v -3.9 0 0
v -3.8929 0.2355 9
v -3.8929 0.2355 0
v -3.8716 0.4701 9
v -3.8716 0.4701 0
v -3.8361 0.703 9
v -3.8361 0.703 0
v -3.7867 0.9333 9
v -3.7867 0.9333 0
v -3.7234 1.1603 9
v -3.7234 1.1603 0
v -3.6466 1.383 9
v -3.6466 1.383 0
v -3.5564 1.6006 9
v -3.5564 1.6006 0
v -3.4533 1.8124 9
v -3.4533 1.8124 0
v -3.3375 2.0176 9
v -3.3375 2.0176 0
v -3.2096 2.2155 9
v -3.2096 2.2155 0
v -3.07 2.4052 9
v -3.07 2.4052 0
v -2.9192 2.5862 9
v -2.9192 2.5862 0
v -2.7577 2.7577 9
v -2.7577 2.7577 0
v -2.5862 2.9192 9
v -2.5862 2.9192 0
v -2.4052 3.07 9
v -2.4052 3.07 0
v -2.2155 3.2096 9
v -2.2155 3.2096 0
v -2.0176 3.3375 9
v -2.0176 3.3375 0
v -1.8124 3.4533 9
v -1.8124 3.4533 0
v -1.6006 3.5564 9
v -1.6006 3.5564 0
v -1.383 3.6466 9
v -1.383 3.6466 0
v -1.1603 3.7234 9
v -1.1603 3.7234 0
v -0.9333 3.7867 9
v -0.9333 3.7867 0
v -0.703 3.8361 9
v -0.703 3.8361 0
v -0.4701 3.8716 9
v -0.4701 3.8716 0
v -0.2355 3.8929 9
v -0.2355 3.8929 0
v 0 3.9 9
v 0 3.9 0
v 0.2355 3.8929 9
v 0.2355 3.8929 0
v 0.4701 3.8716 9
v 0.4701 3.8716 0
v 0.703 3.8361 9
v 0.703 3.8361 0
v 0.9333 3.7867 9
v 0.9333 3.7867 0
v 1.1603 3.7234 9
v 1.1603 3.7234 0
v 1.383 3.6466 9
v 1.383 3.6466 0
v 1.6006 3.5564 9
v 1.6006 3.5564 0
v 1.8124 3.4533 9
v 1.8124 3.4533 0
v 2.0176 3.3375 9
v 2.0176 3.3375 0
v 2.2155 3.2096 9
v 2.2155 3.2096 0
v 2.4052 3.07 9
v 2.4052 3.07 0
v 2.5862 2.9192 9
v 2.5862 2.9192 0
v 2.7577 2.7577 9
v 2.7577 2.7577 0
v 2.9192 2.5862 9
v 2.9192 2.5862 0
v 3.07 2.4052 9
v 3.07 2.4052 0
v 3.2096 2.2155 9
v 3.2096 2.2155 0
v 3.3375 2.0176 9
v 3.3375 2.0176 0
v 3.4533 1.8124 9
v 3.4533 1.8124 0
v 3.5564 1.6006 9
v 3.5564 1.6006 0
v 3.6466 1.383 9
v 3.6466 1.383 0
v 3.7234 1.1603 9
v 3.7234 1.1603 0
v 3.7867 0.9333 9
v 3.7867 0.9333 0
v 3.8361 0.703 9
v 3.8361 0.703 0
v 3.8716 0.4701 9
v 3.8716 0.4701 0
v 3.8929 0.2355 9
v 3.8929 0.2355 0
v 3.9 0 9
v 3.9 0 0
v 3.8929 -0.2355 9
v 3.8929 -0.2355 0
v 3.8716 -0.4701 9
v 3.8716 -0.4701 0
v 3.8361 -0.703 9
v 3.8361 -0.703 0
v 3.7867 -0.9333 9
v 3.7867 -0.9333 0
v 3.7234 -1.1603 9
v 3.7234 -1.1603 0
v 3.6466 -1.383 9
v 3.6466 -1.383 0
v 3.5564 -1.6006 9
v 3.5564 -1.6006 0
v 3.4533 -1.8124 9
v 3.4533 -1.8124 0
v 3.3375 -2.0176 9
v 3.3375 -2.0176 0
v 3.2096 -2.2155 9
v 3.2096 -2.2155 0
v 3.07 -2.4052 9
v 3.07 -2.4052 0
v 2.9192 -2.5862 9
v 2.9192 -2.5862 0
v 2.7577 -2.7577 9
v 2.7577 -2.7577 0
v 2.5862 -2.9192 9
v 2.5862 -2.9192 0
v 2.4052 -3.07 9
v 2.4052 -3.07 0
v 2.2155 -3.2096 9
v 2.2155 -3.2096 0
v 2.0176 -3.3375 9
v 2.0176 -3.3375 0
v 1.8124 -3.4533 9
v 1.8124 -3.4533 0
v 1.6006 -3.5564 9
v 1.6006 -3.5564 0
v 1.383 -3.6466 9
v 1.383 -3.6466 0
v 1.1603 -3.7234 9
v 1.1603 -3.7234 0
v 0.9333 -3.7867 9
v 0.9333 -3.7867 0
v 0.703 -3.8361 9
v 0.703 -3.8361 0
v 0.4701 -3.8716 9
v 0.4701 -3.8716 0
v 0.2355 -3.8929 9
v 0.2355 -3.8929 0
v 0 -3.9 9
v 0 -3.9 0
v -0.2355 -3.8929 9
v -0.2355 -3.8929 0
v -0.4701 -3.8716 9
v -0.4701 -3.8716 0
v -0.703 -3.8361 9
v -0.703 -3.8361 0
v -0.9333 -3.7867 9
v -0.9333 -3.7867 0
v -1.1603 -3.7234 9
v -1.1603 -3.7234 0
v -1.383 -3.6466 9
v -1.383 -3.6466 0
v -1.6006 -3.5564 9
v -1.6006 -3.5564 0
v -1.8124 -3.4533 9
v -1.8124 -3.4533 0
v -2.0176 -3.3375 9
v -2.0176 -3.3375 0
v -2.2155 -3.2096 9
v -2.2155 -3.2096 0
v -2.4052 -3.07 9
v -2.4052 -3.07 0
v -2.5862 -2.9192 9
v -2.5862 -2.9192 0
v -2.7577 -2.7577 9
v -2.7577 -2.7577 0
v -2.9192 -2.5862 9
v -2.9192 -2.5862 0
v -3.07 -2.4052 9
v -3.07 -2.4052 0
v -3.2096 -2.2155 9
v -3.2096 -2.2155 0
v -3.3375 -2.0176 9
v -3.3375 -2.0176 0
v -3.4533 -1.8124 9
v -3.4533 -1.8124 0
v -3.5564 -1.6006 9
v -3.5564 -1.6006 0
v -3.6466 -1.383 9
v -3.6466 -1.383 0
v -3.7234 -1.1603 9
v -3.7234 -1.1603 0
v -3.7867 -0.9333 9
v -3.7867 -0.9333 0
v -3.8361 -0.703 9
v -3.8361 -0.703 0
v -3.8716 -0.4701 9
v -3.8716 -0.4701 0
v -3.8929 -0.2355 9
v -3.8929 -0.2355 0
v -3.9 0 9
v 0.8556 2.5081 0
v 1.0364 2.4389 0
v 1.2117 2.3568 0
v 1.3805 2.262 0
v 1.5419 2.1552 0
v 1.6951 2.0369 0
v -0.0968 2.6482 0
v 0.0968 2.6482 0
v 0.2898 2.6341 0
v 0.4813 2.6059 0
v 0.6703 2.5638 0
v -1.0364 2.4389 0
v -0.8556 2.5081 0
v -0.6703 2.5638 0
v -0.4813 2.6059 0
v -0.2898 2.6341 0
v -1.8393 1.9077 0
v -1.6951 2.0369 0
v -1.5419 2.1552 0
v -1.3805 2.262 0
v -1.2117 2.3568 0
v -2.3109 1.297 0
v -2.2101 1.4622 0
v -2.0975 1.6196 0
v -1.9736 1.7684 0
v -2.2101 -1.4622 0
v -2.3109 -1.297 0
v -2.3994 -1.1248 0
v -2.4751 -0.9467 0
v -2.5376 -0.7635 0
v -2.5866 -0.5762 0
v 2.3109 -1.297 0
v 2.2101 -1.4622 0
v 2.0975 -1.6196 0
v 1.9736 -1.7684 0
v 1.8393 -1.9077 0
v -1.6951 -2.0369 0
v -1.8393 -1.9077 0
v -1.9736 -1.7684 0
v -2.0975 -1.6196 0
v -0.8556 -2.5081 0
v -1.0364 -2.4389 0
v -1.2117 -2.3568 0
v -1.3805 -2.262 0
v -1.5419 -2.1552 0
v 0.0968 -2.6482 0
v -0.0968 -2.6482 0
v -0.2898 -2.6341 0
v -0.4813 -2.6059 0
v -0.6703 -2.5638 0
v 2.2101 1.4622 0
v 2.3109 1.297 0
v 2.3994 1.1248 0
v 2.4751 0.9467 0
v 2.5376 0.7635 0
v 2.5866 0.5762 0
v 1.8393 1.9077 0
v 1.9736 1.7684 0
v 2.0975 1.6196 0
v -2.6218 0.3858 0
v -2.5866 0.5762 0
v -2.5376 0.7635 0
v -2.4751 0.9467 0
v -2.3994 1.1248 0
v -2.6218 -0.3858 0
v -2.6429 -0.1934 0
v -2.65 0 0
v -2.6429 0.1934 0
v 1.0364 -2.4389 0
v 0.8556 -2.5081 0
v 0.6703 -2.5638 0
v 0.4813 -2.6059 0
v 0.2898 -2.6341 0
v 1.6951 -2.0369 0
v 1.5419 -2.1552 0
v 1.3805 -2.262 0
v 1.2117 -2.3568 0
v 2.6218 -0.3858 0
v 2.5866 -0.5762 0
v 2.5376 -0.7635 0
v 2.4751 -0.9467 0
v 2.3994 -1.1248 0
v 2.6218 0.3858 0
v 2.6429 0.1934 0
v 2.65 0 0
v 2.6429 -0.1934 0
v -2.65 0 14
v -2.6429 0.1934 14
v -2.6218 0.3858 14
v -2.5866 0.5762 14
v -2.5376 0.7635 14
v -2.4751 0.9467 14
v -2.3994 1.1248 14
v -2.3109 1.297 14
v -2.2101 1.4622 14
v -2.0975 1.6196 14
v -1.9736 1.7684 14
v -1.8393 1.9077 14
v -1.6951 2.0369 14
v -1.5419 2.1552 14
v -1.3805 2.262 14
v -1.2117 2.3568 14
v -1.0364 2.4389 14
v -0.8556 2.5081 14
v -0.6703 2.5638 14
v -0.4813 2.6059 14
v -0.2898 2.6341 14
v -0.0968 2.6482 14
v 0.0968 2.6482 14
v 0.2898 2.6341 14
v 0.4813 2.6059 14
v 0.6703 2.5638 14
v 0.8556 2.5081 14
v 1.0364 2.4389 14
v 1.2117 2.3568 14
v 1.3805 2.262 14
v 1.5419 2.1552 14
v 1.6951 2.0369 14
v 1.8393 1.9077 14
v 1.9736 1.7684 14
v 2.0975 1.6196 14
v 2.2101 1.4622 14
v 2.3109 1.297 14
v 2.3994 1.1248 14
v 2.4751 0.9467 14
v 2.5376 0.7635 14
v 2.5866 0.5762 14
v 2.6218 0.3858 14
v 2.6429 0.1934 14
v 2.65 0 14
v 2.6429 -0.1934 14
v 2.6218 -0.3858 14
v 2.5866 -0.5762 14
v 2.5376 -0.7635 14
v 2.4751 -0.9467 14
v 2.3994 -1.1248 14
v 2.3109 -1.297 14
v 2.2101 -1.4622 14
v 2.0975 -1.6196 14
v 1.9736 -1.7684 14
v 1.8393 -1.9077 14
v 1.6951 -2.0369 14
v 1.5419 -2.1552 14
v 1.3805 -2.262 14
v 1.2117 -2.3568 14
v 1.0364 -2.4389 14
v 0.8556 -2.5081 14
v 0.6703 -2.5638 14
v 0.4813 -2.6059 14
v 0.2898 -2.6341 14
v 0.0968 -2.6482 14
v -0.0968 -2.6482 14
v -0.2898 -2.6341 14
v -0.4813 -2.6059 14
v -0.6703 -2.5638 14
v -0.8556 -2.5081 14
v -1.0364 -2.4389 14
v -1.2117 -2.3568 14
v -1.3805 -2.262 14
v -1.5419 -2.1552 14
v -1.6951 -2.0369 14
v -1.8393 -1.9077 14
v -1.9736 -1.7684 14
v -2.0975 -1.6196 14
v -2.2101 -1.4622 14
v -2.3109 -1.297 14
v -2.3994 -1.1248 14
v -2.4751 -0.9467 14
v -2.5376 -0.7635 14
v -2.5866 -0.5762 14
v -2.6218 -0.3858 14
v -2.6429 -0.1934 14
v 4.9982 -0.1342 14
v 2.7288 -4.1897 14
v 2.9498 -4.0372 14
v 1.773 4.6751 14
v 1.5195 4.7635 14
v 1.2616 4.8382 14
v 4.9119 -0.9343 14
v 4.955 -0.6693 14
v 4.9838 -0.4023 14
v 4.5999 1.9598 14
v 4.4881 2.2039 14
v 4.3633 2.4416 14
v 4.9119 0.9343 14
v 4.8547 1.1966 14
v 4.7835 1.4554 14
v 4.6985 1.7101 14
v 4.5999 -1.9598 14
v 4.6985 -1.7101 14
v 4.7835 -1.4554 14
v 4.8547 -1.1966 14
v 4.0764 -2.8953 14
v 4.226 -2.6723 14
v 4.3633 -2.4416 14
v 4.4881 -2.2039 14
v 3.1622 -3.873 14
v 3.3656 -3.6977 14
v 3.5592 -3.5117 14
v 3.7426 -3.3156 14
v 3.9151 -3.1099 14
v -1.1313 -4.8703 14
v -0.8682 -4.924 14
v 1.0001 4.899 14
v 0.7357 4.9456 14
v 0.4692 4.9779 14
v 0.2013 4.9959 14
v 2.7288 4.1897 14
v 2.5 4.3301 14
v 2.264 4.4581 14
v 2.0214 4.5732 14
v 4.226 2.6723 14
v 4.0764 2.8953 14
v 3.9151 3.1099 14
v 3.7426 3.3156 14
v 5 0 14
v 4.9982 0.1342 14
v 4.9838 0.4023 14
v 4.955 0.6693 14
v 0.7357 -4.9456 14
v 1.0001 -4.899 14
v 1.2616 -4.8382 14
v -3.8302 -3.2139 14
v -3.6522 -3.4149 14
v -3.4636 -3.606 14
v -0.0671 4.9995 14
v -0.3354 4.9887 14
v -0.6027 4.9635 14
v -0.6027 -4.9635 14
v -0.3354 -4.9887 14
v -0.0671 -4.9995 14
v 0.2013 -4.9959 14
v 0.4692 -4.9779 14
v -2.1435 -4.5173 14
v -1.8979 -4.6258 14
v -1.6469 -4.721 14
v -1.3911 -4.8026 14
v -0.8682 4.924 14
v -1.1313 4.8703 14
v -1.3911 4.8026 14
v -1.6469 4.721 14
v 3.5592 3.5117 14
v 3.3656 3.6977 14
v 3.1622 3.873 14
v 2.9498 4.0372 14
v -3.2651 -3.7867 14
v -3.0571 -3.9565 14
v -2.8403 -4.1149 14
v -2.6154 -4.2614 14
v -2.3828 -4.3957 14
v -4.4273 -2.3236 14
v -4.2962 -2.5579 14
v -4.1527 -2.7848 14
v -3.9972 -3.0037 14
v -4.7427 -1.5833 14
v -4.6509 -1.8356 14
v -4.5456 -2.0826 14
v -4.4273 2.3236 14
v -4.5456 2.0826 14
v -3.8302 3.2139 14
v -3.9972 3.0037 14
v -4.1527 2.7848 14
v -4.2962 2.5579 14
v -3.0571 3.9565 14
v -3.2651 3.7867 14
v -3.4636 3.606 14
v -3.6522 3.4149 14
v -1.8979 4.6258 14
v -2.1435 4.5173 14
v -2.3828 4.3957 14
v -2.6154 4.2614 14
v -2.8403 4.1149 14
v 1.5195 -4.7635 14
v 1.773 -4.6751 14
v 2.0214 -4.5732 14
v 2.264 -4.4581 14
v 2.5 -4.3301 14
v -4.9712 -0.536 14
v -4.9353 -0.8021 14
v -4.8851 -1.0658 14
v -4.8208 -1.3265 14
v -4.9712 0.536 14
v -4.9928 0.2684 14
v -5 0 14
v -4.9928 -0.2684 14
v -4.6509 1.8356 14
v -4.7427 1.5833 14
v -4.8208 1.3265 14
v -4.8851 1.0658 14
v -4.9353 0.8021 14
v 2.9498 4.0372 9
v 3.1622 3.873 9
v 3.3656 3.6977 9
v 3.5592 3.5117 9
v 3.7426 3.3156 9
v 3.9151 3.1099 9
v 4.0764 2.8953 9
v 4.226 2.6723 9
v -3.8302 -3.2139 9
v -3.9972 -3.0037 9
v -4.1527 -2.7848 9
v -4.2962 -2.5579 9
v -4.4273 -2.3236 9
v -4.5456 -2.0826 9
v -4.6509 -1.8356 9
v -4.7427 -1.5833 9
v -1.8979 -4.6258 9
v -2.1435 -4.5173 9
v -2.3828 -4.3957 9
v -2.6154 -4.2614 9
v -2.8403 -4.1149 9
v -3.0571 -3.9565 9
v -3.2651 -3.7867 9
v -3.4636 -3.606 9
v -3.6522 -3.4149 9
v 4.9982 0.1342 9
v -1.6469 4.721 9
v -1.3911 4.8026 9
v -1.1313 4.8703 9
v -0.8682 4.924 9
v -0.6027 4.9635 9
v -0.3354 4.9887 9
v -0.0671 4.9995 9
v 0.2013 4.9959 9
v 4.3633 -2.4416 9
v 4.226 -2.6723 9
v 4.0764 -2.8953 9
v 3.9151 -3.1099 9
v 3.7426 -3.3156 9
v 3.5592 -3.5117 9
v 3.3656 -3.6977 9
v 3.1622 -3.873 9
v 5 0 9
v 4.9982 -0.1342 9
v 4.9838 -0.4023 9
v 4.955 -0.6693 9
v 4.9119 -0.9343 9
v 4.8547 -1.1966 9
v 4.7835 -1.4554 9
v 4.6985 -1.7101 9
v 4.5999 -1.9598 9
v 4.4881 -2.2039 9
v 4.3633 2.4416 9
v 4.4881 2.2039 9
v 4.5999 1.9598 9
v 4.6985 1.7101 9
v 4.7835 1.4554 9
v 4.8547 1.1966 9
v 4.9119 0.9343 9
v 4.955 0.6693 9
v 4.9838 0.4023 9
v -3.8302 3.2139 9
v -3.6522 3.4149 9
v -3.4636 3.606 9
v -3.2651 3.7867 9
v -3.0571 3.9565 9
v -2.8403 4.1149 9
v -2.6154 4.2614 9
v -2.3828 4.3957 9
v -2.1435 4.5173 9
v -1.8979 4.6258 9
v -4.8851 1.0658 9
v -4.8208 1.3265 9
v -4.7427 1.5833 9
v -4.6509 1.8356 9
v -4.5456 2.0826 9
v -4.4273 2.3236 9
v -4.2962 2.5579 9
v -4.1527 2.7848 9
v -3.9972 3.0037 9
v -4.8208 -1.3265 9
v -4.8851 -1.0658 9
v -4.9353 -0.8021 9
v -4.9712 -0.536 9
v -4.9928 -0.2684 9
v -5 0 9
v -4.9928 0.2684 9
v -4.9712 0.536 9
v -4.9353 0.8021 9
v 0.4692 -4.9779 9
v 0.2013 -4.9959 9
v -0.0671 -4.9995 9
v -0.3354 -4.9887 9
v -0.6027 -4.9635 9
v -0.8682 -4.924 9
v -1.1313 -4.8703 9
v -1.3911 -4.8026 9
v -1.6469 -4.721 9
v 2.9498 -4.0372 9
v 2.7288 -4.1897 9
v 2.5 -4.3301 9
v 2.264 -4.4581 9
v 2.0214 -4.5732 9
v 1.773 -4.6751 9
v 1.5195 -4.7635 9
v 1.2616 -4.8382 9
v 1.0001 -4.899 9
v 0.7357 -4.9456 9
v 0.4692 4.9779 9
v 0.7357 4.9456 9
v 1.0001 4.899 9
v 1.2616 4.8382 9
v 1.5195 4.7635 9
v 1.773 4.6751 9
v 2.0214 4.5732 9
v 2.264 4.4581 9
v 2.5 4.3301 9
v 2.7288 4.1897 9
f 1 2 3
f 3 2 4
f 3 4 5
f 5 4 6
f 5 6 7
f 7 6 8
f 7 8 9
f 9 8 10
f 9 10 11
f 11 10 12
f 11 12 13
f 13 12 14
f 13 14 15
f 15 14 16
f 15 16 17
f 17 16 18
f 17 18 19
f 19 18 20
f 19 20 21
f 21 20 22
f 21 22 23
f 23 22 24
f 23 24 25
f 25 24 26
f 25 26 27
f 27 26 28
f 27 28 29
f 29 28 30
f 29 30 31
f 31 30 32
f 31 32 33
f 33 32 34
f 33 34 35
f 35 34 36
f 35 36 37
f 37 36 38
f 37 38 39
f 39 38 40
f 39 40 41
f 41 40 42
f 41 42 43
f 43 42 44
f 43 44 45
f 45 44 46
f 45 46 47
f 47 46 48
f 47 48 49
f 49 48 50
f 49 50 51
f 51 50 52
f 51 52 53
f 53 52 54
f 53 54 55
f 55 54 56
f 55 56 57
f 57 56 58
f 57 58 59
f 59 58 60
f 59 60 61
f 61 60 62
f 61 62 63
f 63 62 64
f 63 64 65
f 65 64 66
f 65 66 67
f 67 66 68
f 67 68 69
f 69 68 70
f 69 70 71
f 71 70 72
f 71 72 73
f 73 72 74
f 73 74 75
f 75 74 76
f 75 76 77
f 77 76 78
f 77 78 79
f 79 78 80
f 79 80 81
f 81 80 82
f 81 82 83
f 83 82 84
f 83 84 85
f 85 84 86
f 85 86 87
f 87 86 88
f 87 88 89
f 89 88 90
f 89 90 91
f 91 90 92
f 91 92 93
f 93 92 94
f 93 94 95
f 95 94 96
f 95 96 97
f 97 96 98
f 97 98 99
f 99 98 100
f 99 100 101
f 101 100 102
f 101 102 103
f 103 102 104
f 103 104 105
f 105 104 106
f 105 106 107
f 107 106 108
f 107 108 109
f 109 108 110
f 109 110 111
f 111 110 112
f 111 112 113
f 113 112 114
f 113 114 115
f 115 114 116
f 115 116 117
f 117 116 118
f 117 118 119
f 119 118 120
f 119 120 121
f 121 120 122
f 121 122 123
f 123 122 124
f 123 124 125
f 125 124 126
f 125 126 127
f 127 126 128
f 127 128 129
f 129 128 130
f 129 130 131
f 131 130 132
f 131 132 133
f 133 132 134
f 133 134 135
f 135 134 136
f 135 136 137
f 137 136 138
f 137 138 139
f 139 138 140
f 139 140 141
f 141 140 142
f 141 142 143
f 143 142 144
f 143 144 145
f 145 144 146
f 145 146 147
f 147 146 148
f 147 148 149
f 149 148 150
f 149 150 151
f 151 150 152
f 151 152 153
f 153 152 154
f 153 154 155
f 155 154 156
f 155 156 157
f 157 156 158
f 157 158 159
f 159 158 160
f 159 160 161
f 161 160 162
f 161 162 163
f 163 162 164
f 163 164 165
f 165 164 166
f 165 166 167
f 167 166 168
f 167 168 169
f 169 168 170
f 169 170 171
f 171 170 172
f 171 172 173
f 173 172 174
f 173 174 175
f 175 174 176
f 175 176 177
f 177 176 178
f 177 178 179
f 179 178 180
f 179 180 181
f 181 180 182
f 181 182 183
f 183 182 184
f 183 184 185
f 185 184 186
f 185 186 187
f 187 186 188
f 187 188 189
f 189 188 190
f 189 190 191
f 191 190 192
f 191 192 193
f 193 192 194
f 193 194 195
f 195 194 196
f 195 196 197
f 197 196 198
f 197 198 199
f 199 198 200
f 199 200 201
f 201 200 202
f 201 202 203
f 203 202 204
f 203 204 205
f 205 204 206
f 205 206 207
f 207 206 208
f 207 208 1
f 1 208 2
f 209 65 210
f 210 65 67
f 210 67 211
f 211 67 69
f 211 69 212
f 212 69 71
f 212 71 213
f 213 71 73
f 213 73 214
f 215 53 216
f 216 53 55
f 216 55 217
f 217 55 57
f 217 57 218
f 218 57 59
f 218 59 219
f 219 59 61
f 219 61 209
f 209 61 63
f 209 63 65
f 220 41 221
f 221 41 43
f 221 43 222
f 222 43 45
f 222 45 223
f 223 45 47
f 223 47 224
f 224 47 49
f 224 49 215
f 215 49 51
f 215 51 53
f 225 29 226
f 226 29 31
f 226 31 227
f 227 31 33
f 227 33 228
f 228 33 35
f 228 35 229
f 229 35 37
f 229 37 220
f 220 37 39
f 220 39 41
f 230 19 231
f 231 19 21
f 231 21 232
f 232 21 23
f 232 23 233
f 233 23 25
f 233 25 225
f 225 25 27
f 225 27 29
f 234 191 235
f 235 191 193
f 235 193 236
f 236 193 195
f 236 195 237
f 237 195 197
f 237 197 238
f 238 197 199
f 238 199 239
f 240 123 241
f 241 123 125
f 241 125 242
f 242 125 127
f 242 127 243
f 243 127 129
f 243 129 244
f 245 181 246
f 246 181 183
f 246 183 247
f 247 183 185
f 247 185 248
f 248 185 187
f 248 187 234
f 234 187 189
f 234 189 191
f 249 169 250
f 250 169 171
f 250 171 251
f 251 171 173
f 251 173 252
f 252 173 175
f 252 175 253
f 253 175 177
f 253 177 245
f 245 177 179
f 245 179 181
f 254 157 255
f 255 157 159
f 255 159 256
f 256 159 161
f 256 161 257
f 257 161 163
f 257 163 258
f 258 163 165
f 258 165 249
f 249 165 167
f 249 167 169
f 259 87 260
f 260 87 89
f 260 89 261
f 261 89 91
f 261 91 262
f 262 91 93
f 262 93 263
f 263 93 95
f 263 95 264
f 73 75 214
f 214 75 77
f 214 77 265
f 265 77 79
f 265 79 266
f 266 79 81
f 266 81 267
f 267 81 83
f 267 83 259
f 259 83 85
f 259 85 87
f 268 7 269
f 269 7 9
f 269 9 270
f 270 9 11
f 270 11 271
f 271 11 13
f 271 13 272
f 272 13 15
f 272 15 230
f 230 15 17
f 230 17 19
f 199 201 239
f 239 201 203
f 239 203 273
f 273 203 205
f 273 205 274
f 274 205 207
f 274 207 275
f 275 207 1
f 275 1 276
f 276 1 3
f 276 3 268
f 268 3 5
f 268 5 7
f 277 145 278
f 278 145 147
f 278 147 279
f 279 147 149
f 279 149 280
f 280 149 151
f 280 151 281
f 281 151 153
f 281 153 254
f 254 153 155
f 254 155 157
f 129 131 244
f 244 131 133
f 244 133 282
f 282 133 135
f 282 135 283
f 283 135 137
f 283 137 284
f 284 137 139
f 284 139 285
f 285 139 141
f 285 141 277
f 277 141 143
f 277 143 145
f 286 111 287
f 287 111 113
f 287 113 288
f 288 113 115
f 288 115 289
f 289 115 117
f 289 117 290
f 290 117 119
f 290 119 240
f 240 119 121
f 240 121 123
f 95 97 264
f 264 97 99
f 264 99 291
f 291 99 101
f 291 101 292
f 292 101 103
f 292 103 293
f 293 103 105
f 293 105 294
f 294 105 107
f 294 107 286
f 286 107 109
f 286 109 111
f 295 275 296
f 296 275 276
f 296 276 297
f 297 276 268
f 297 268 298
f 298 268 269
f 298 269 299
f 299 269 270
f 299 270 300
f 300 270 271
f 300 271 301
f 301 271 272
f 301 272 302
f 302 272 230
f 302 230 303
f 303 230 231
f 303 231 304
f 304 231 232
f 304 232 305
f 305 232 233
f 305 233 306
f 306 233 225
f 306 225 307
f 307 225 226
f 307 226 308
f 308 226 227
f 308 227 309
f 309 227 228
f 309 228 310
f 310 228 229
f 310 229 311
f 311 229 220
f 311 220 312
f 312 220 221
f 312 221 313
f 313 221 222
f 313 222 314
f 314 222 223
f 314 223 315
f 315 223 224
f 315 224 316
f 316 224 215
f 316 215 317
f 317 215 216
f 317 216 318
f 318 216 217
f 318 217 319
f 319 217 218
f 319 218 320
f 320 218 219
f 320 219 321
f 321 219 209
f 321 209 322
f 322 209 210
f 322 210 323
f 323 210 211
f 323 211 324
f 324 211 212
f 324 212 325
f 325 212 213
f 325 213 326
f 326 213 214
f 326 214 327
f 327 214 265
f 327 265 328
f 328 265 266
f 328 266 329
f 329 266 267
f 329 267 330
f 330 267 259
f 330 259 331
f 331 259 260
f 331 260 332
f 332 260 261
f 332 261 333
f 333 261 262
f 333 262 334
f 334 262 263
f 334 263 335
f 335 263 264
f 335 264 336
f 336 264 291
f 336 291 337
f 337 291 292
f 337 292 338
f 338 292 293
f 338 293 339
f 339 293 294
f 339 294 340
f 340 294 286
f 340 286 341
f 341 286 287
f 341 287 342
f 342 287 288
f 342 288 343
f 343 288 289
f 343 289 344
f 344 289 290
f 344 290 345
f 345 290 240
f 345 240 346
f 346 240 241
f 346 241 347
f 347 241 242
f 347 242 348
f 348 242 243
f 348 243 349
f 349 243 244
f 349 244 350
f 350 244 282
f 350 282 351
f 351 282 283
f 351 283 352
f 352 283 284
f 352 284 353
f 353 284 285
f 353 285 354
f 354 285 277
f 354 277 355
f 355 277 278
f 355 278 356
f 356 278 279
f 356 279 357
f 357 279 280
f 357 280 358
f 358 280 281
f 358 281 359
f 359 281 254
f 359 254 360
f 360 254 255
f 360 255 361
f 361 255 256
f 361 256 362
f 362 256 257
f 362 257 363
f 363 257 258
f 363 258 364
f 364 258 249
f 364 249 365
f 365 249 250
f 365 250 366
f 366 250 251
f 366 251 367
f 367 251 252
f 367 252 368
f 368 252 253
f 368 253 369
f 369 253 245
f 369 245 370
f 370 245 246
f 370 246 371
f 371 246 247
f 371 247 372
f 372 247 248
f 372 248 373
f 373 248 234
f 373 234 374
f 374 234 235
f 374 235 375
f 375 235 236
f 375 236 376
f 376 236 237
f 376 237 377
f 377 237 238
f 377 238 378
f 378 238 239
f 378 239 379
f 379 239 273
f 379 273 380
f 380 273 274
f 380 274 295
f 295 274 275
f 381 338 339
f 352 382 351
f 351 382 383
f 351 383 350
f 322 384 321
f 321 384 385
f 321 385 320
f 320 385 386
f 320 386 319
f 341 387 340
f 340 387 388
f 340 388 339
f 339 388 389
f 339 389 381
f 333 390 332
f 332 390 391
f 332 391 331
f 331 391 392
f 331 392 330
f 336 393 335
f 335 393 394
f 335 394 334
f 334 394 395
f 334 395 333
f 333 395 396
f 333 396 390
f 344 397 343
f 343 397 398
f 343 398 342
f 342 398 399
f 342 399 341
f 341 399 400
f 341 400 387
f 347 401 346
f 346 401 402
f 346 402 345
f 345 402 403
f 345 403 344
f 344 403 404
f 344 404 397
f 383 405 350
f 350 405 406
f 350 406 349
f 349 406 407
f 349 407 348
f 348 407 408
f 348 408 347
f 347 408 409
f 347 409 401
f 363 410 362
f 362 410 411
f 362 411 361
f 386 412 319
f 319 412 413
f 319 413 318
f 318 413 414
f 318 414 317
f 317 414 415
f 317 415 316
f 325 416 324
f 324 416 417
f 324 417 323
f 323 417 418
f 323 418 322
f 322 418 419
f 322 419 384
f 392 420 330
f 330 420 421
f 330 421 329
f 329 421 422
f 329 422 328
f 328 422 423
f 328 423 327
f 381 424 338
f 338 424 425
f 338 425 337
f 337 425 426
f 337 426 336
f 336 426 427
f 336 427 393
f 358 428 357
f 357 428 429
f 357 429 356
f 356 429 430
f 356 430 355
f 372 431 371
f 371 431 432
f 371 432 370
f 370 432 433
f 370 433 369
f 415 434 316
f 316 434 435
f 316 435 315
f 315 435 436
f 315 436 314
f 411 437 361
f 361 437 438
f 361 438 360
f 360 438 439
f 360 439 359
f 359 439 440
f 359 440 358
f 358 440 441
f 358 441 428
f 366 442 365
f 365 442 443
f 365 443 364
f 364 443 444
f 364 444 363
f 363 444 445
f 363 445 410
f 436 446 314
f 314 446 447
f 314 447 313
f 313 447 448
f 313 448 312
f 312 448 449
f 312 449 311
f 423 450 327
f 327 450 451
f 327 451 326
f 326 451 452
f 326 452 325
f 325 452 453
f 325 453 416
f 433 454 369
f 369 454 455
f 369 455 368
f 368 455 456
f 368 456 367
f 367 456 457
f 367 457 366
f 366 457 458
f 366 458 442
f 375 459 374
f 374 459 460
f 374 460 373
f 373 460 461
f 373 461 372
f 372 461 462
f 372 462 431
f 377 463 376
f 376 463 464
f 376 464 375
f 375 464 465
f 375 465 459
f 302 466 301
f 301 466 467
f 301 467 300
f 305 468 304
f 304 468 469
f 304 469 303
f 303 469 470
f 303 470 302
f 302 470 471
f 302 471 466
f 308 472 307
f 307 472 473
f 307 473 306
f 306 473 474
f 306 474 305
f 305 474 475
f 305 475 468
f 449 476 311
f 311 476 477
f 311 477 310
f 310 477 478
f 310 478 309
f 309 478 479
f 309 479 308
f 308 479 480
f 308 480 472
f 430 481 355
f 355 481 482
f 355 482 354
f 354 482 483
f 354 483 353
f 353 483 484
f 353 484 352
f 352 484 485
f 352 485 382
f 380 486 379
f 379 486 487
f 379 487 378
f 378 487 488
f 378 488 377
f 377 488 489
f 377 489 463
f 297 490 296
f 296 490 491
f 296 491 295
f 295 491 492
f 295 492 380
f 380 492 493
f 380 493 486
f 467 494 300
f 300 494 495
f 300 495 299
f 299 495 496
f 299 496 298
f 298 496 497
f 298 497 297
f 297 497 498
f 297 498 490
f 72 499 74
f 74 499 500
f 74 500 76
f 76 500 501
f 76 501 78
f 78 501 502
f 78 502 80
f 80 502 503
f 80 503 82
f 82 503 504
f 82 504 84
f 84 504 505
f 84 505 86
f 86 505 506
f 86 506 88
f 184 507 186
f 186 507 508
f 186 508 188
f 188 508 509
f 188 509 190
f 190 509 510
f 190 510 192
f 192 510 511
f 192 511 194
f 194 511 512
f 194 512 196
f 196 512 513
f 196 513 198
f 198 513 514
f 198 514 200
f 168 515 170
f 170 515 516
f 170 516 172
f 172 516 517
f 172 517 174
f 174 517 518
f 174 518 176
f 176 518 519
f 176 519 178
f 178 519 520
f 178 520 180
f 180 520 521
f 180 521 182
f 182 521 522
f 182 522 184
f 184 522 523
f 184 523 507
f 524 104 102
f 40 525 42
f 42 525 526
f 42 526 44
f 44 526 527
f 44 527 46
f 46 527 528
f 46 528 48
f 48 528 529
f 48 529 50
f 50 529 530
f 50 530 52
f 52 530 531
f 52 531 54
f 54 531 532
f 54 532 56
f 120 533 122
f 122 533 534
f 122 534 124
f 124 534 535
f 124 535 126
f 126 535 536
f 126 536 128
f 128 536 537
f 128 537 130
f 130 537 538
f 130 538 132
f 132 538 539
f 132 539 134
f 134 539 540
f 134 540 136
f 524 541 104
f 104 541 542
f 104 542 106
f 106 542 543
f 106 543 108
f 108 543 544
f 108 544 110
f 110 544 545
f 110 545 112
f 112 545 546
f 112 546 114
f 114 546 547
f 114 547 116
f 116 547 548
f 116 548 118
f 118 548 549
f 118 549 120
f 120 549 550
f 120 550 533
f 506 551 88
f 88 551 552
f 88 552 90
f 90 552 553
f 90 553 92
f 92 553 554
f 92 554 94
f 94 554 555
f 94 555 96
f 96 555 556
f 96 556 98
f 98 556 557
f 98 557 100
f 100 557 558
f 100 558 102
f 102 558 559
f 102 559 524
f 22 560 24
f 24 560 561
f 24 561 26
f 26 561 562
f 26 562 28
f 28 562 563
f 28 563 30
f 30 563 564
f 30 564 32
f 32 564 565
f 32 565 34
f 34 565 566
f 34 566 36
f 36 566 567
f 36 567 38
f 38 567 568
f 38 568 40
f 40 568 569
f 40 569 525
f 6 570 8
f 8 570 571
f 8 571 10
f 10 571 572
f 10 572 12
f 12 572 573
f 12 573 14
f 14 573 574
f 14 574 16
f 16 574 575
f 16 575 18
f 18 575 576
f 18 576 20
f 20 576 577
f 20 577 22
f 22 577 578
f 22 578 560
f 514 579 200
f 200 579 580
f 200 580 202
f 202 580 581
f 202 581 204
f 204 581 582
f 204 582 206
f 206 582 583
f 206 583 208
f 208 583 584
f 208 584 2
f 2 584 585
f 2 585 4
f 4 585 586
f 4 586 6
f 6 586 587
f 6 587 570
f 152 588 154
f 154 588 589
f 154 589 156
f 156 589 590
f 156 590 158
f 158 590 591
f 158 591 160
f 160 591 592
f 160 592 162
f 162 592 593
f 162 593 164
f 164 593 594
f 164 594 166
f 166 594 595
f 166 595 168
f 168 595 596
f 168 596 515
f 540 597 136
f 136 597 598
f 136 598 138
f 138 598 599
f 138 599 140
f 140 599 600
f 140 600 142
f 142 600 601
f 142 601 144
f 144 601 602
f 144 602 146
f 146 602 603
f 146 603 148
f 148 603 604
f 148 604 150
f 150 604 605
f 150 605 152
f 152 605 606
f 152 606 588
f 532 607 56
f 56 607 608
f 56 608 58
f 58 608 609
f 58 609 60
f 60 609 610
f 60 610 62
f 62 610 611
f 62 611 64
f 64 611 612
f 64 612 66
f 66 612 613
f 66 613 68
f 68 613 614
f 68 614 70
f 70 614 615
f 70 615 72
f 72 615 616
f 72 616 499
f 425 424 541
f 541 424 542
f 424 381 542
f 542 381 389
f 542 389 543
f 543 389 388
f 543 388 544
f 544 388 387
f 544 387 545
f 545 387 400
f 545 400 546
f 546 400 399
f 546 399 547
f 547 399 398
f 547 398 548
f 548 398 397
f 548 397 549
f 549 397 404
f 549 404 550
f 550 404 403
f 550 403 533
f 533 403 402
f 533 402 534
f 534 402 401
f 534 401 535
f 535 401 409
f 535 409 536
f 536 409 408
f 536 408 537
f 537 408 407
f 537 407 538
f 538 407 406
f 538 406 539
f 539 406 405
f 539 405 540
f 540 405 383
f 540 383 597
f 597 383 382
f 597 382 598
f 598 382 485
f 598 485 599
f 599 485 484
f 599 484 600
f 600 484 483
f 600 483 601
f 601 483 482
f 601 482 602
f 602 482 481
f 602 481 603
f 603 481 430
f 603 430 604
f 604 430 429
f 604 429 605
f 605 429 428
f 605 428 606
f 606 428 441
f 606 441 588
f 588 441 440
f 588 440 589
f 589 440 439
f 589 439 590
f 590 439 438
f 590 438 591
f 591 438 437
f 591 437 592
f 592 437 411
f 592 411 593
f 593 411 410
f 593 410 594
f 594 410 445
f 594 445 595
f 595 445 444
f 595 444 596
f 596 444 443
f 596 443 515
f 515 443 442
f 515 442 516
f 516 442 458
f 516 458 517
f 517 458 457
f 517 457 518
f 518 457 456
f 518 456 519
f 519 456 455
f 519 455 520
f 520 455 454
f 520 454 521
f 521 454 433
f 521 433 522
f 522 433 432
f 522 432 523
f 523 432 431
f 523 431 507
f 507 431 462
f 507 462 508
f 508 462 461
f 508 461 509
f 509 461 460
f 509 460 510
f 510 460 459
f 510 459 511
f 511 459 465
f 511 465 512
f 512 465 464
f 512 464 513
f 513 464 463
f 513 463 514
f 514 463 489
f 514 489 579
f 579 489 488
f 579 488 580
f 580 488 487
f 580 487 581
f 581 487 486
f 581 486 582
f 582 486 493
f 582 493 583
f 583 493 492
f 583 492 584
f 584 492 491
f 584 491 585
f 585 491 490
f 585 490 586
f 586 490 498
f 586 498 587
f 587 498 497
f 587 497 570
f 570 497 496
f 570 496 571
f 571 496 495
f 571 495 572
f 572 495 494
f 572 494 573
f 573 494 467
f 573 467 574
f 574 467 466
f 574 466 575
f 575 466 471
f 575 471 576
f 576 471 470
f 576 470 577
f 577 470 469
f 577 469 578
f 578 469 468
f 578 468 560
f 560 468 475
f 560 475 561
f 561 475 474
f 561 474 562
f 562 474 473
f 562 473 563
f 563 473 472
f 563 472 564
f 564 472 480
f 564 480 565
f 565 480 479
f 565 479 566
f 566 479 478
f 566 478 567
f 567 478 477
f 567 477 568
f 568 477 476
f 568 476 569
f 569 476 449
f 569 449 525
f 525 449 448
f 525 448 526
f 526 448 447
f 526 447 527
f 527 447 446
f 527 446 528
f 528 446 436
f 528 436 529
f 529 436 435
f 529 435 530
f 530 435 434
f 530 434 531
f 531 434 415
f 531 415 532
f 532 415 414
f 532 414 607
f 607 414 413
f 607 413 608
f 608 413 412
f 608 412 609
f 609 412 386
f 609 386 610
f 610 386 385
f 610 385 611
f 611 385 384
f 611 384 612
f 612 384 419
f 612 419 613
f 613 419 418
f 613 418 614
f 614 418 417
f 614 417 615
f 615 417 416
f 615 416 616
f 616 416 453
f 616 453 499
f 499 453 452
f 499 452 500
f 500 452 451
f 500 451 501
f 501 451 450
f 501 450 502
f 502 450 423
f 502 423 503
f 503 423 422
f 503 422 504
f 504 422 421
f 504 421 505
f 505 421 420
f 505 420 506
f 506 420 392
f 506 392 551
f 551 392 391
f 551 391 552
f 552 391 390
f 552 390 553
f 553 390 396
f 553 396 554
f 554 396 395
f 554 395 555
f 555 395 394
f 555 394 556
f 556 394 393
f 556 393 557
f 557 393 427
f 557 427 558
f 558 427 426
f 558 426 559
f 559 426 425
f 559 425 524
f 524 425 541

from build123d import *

# Parameters (mm, degrees)
SCHIZZO1_R                   = 3.9
SCHIZZO1_R_2                 = 2.65
ESTRUSIONE_ESTRUSIONE1_DEPTH = 9
SCHIZZO2_R                   = 5
SCHIZZO2_R_2                 = 3.9
ESTRUSIONE_ESTRUSIONE3_DEPTH = 5
SCHIZZO3_R                   = 3.9
SCHIZZO3_R_2                 = 2.65
ESTRUSIONE_ESTRUSIONE4_DEPTH = 5


with BuildPart() as part:
    # Schizzo1 → Estrusione-Estrusione1 (new body)
    with BuildSketch(Plane.XY):
        Circle(SCHIZZO1_R)
        Circle(SCHIZZO1_R_2, mode=Mode.SUBTRACT)
    extrude(amount=ESTRUSIONE_ESTRUSIONE1_DEPTH)



with BuildPart() as body_2:
    # Schizzo2 → Estrusione-Estrusione3 (new body)
    with BuildSketch(Plane.XY.offset(9)):
        Circle(SCHIZZO2_R)
        Circle(SCHIZZO2_R_2, mode=Mode.SUBTRACT)
    extrude(amount=ESTRUSIONE_ESTRUSIONE3_DEPTH)


with BuildPart() as part_1:
    add(part.part)

    add(body_2.part)  # Estrusione-Estrusione4 merges body 2
    # Schizzo3 → Estrusione-Estrusione4 (add)
    with BuildSketch(Plane.XY.offset(9)):
        Circle(SCHIZZO3_R)
        Circle(SCHIZZO3_R_2, mode=Mode.SUBTRACT)
    extrude(amount=ESTRUSIONE_ESTRUSIONE4_DEPTH)


solid = part_1.part
